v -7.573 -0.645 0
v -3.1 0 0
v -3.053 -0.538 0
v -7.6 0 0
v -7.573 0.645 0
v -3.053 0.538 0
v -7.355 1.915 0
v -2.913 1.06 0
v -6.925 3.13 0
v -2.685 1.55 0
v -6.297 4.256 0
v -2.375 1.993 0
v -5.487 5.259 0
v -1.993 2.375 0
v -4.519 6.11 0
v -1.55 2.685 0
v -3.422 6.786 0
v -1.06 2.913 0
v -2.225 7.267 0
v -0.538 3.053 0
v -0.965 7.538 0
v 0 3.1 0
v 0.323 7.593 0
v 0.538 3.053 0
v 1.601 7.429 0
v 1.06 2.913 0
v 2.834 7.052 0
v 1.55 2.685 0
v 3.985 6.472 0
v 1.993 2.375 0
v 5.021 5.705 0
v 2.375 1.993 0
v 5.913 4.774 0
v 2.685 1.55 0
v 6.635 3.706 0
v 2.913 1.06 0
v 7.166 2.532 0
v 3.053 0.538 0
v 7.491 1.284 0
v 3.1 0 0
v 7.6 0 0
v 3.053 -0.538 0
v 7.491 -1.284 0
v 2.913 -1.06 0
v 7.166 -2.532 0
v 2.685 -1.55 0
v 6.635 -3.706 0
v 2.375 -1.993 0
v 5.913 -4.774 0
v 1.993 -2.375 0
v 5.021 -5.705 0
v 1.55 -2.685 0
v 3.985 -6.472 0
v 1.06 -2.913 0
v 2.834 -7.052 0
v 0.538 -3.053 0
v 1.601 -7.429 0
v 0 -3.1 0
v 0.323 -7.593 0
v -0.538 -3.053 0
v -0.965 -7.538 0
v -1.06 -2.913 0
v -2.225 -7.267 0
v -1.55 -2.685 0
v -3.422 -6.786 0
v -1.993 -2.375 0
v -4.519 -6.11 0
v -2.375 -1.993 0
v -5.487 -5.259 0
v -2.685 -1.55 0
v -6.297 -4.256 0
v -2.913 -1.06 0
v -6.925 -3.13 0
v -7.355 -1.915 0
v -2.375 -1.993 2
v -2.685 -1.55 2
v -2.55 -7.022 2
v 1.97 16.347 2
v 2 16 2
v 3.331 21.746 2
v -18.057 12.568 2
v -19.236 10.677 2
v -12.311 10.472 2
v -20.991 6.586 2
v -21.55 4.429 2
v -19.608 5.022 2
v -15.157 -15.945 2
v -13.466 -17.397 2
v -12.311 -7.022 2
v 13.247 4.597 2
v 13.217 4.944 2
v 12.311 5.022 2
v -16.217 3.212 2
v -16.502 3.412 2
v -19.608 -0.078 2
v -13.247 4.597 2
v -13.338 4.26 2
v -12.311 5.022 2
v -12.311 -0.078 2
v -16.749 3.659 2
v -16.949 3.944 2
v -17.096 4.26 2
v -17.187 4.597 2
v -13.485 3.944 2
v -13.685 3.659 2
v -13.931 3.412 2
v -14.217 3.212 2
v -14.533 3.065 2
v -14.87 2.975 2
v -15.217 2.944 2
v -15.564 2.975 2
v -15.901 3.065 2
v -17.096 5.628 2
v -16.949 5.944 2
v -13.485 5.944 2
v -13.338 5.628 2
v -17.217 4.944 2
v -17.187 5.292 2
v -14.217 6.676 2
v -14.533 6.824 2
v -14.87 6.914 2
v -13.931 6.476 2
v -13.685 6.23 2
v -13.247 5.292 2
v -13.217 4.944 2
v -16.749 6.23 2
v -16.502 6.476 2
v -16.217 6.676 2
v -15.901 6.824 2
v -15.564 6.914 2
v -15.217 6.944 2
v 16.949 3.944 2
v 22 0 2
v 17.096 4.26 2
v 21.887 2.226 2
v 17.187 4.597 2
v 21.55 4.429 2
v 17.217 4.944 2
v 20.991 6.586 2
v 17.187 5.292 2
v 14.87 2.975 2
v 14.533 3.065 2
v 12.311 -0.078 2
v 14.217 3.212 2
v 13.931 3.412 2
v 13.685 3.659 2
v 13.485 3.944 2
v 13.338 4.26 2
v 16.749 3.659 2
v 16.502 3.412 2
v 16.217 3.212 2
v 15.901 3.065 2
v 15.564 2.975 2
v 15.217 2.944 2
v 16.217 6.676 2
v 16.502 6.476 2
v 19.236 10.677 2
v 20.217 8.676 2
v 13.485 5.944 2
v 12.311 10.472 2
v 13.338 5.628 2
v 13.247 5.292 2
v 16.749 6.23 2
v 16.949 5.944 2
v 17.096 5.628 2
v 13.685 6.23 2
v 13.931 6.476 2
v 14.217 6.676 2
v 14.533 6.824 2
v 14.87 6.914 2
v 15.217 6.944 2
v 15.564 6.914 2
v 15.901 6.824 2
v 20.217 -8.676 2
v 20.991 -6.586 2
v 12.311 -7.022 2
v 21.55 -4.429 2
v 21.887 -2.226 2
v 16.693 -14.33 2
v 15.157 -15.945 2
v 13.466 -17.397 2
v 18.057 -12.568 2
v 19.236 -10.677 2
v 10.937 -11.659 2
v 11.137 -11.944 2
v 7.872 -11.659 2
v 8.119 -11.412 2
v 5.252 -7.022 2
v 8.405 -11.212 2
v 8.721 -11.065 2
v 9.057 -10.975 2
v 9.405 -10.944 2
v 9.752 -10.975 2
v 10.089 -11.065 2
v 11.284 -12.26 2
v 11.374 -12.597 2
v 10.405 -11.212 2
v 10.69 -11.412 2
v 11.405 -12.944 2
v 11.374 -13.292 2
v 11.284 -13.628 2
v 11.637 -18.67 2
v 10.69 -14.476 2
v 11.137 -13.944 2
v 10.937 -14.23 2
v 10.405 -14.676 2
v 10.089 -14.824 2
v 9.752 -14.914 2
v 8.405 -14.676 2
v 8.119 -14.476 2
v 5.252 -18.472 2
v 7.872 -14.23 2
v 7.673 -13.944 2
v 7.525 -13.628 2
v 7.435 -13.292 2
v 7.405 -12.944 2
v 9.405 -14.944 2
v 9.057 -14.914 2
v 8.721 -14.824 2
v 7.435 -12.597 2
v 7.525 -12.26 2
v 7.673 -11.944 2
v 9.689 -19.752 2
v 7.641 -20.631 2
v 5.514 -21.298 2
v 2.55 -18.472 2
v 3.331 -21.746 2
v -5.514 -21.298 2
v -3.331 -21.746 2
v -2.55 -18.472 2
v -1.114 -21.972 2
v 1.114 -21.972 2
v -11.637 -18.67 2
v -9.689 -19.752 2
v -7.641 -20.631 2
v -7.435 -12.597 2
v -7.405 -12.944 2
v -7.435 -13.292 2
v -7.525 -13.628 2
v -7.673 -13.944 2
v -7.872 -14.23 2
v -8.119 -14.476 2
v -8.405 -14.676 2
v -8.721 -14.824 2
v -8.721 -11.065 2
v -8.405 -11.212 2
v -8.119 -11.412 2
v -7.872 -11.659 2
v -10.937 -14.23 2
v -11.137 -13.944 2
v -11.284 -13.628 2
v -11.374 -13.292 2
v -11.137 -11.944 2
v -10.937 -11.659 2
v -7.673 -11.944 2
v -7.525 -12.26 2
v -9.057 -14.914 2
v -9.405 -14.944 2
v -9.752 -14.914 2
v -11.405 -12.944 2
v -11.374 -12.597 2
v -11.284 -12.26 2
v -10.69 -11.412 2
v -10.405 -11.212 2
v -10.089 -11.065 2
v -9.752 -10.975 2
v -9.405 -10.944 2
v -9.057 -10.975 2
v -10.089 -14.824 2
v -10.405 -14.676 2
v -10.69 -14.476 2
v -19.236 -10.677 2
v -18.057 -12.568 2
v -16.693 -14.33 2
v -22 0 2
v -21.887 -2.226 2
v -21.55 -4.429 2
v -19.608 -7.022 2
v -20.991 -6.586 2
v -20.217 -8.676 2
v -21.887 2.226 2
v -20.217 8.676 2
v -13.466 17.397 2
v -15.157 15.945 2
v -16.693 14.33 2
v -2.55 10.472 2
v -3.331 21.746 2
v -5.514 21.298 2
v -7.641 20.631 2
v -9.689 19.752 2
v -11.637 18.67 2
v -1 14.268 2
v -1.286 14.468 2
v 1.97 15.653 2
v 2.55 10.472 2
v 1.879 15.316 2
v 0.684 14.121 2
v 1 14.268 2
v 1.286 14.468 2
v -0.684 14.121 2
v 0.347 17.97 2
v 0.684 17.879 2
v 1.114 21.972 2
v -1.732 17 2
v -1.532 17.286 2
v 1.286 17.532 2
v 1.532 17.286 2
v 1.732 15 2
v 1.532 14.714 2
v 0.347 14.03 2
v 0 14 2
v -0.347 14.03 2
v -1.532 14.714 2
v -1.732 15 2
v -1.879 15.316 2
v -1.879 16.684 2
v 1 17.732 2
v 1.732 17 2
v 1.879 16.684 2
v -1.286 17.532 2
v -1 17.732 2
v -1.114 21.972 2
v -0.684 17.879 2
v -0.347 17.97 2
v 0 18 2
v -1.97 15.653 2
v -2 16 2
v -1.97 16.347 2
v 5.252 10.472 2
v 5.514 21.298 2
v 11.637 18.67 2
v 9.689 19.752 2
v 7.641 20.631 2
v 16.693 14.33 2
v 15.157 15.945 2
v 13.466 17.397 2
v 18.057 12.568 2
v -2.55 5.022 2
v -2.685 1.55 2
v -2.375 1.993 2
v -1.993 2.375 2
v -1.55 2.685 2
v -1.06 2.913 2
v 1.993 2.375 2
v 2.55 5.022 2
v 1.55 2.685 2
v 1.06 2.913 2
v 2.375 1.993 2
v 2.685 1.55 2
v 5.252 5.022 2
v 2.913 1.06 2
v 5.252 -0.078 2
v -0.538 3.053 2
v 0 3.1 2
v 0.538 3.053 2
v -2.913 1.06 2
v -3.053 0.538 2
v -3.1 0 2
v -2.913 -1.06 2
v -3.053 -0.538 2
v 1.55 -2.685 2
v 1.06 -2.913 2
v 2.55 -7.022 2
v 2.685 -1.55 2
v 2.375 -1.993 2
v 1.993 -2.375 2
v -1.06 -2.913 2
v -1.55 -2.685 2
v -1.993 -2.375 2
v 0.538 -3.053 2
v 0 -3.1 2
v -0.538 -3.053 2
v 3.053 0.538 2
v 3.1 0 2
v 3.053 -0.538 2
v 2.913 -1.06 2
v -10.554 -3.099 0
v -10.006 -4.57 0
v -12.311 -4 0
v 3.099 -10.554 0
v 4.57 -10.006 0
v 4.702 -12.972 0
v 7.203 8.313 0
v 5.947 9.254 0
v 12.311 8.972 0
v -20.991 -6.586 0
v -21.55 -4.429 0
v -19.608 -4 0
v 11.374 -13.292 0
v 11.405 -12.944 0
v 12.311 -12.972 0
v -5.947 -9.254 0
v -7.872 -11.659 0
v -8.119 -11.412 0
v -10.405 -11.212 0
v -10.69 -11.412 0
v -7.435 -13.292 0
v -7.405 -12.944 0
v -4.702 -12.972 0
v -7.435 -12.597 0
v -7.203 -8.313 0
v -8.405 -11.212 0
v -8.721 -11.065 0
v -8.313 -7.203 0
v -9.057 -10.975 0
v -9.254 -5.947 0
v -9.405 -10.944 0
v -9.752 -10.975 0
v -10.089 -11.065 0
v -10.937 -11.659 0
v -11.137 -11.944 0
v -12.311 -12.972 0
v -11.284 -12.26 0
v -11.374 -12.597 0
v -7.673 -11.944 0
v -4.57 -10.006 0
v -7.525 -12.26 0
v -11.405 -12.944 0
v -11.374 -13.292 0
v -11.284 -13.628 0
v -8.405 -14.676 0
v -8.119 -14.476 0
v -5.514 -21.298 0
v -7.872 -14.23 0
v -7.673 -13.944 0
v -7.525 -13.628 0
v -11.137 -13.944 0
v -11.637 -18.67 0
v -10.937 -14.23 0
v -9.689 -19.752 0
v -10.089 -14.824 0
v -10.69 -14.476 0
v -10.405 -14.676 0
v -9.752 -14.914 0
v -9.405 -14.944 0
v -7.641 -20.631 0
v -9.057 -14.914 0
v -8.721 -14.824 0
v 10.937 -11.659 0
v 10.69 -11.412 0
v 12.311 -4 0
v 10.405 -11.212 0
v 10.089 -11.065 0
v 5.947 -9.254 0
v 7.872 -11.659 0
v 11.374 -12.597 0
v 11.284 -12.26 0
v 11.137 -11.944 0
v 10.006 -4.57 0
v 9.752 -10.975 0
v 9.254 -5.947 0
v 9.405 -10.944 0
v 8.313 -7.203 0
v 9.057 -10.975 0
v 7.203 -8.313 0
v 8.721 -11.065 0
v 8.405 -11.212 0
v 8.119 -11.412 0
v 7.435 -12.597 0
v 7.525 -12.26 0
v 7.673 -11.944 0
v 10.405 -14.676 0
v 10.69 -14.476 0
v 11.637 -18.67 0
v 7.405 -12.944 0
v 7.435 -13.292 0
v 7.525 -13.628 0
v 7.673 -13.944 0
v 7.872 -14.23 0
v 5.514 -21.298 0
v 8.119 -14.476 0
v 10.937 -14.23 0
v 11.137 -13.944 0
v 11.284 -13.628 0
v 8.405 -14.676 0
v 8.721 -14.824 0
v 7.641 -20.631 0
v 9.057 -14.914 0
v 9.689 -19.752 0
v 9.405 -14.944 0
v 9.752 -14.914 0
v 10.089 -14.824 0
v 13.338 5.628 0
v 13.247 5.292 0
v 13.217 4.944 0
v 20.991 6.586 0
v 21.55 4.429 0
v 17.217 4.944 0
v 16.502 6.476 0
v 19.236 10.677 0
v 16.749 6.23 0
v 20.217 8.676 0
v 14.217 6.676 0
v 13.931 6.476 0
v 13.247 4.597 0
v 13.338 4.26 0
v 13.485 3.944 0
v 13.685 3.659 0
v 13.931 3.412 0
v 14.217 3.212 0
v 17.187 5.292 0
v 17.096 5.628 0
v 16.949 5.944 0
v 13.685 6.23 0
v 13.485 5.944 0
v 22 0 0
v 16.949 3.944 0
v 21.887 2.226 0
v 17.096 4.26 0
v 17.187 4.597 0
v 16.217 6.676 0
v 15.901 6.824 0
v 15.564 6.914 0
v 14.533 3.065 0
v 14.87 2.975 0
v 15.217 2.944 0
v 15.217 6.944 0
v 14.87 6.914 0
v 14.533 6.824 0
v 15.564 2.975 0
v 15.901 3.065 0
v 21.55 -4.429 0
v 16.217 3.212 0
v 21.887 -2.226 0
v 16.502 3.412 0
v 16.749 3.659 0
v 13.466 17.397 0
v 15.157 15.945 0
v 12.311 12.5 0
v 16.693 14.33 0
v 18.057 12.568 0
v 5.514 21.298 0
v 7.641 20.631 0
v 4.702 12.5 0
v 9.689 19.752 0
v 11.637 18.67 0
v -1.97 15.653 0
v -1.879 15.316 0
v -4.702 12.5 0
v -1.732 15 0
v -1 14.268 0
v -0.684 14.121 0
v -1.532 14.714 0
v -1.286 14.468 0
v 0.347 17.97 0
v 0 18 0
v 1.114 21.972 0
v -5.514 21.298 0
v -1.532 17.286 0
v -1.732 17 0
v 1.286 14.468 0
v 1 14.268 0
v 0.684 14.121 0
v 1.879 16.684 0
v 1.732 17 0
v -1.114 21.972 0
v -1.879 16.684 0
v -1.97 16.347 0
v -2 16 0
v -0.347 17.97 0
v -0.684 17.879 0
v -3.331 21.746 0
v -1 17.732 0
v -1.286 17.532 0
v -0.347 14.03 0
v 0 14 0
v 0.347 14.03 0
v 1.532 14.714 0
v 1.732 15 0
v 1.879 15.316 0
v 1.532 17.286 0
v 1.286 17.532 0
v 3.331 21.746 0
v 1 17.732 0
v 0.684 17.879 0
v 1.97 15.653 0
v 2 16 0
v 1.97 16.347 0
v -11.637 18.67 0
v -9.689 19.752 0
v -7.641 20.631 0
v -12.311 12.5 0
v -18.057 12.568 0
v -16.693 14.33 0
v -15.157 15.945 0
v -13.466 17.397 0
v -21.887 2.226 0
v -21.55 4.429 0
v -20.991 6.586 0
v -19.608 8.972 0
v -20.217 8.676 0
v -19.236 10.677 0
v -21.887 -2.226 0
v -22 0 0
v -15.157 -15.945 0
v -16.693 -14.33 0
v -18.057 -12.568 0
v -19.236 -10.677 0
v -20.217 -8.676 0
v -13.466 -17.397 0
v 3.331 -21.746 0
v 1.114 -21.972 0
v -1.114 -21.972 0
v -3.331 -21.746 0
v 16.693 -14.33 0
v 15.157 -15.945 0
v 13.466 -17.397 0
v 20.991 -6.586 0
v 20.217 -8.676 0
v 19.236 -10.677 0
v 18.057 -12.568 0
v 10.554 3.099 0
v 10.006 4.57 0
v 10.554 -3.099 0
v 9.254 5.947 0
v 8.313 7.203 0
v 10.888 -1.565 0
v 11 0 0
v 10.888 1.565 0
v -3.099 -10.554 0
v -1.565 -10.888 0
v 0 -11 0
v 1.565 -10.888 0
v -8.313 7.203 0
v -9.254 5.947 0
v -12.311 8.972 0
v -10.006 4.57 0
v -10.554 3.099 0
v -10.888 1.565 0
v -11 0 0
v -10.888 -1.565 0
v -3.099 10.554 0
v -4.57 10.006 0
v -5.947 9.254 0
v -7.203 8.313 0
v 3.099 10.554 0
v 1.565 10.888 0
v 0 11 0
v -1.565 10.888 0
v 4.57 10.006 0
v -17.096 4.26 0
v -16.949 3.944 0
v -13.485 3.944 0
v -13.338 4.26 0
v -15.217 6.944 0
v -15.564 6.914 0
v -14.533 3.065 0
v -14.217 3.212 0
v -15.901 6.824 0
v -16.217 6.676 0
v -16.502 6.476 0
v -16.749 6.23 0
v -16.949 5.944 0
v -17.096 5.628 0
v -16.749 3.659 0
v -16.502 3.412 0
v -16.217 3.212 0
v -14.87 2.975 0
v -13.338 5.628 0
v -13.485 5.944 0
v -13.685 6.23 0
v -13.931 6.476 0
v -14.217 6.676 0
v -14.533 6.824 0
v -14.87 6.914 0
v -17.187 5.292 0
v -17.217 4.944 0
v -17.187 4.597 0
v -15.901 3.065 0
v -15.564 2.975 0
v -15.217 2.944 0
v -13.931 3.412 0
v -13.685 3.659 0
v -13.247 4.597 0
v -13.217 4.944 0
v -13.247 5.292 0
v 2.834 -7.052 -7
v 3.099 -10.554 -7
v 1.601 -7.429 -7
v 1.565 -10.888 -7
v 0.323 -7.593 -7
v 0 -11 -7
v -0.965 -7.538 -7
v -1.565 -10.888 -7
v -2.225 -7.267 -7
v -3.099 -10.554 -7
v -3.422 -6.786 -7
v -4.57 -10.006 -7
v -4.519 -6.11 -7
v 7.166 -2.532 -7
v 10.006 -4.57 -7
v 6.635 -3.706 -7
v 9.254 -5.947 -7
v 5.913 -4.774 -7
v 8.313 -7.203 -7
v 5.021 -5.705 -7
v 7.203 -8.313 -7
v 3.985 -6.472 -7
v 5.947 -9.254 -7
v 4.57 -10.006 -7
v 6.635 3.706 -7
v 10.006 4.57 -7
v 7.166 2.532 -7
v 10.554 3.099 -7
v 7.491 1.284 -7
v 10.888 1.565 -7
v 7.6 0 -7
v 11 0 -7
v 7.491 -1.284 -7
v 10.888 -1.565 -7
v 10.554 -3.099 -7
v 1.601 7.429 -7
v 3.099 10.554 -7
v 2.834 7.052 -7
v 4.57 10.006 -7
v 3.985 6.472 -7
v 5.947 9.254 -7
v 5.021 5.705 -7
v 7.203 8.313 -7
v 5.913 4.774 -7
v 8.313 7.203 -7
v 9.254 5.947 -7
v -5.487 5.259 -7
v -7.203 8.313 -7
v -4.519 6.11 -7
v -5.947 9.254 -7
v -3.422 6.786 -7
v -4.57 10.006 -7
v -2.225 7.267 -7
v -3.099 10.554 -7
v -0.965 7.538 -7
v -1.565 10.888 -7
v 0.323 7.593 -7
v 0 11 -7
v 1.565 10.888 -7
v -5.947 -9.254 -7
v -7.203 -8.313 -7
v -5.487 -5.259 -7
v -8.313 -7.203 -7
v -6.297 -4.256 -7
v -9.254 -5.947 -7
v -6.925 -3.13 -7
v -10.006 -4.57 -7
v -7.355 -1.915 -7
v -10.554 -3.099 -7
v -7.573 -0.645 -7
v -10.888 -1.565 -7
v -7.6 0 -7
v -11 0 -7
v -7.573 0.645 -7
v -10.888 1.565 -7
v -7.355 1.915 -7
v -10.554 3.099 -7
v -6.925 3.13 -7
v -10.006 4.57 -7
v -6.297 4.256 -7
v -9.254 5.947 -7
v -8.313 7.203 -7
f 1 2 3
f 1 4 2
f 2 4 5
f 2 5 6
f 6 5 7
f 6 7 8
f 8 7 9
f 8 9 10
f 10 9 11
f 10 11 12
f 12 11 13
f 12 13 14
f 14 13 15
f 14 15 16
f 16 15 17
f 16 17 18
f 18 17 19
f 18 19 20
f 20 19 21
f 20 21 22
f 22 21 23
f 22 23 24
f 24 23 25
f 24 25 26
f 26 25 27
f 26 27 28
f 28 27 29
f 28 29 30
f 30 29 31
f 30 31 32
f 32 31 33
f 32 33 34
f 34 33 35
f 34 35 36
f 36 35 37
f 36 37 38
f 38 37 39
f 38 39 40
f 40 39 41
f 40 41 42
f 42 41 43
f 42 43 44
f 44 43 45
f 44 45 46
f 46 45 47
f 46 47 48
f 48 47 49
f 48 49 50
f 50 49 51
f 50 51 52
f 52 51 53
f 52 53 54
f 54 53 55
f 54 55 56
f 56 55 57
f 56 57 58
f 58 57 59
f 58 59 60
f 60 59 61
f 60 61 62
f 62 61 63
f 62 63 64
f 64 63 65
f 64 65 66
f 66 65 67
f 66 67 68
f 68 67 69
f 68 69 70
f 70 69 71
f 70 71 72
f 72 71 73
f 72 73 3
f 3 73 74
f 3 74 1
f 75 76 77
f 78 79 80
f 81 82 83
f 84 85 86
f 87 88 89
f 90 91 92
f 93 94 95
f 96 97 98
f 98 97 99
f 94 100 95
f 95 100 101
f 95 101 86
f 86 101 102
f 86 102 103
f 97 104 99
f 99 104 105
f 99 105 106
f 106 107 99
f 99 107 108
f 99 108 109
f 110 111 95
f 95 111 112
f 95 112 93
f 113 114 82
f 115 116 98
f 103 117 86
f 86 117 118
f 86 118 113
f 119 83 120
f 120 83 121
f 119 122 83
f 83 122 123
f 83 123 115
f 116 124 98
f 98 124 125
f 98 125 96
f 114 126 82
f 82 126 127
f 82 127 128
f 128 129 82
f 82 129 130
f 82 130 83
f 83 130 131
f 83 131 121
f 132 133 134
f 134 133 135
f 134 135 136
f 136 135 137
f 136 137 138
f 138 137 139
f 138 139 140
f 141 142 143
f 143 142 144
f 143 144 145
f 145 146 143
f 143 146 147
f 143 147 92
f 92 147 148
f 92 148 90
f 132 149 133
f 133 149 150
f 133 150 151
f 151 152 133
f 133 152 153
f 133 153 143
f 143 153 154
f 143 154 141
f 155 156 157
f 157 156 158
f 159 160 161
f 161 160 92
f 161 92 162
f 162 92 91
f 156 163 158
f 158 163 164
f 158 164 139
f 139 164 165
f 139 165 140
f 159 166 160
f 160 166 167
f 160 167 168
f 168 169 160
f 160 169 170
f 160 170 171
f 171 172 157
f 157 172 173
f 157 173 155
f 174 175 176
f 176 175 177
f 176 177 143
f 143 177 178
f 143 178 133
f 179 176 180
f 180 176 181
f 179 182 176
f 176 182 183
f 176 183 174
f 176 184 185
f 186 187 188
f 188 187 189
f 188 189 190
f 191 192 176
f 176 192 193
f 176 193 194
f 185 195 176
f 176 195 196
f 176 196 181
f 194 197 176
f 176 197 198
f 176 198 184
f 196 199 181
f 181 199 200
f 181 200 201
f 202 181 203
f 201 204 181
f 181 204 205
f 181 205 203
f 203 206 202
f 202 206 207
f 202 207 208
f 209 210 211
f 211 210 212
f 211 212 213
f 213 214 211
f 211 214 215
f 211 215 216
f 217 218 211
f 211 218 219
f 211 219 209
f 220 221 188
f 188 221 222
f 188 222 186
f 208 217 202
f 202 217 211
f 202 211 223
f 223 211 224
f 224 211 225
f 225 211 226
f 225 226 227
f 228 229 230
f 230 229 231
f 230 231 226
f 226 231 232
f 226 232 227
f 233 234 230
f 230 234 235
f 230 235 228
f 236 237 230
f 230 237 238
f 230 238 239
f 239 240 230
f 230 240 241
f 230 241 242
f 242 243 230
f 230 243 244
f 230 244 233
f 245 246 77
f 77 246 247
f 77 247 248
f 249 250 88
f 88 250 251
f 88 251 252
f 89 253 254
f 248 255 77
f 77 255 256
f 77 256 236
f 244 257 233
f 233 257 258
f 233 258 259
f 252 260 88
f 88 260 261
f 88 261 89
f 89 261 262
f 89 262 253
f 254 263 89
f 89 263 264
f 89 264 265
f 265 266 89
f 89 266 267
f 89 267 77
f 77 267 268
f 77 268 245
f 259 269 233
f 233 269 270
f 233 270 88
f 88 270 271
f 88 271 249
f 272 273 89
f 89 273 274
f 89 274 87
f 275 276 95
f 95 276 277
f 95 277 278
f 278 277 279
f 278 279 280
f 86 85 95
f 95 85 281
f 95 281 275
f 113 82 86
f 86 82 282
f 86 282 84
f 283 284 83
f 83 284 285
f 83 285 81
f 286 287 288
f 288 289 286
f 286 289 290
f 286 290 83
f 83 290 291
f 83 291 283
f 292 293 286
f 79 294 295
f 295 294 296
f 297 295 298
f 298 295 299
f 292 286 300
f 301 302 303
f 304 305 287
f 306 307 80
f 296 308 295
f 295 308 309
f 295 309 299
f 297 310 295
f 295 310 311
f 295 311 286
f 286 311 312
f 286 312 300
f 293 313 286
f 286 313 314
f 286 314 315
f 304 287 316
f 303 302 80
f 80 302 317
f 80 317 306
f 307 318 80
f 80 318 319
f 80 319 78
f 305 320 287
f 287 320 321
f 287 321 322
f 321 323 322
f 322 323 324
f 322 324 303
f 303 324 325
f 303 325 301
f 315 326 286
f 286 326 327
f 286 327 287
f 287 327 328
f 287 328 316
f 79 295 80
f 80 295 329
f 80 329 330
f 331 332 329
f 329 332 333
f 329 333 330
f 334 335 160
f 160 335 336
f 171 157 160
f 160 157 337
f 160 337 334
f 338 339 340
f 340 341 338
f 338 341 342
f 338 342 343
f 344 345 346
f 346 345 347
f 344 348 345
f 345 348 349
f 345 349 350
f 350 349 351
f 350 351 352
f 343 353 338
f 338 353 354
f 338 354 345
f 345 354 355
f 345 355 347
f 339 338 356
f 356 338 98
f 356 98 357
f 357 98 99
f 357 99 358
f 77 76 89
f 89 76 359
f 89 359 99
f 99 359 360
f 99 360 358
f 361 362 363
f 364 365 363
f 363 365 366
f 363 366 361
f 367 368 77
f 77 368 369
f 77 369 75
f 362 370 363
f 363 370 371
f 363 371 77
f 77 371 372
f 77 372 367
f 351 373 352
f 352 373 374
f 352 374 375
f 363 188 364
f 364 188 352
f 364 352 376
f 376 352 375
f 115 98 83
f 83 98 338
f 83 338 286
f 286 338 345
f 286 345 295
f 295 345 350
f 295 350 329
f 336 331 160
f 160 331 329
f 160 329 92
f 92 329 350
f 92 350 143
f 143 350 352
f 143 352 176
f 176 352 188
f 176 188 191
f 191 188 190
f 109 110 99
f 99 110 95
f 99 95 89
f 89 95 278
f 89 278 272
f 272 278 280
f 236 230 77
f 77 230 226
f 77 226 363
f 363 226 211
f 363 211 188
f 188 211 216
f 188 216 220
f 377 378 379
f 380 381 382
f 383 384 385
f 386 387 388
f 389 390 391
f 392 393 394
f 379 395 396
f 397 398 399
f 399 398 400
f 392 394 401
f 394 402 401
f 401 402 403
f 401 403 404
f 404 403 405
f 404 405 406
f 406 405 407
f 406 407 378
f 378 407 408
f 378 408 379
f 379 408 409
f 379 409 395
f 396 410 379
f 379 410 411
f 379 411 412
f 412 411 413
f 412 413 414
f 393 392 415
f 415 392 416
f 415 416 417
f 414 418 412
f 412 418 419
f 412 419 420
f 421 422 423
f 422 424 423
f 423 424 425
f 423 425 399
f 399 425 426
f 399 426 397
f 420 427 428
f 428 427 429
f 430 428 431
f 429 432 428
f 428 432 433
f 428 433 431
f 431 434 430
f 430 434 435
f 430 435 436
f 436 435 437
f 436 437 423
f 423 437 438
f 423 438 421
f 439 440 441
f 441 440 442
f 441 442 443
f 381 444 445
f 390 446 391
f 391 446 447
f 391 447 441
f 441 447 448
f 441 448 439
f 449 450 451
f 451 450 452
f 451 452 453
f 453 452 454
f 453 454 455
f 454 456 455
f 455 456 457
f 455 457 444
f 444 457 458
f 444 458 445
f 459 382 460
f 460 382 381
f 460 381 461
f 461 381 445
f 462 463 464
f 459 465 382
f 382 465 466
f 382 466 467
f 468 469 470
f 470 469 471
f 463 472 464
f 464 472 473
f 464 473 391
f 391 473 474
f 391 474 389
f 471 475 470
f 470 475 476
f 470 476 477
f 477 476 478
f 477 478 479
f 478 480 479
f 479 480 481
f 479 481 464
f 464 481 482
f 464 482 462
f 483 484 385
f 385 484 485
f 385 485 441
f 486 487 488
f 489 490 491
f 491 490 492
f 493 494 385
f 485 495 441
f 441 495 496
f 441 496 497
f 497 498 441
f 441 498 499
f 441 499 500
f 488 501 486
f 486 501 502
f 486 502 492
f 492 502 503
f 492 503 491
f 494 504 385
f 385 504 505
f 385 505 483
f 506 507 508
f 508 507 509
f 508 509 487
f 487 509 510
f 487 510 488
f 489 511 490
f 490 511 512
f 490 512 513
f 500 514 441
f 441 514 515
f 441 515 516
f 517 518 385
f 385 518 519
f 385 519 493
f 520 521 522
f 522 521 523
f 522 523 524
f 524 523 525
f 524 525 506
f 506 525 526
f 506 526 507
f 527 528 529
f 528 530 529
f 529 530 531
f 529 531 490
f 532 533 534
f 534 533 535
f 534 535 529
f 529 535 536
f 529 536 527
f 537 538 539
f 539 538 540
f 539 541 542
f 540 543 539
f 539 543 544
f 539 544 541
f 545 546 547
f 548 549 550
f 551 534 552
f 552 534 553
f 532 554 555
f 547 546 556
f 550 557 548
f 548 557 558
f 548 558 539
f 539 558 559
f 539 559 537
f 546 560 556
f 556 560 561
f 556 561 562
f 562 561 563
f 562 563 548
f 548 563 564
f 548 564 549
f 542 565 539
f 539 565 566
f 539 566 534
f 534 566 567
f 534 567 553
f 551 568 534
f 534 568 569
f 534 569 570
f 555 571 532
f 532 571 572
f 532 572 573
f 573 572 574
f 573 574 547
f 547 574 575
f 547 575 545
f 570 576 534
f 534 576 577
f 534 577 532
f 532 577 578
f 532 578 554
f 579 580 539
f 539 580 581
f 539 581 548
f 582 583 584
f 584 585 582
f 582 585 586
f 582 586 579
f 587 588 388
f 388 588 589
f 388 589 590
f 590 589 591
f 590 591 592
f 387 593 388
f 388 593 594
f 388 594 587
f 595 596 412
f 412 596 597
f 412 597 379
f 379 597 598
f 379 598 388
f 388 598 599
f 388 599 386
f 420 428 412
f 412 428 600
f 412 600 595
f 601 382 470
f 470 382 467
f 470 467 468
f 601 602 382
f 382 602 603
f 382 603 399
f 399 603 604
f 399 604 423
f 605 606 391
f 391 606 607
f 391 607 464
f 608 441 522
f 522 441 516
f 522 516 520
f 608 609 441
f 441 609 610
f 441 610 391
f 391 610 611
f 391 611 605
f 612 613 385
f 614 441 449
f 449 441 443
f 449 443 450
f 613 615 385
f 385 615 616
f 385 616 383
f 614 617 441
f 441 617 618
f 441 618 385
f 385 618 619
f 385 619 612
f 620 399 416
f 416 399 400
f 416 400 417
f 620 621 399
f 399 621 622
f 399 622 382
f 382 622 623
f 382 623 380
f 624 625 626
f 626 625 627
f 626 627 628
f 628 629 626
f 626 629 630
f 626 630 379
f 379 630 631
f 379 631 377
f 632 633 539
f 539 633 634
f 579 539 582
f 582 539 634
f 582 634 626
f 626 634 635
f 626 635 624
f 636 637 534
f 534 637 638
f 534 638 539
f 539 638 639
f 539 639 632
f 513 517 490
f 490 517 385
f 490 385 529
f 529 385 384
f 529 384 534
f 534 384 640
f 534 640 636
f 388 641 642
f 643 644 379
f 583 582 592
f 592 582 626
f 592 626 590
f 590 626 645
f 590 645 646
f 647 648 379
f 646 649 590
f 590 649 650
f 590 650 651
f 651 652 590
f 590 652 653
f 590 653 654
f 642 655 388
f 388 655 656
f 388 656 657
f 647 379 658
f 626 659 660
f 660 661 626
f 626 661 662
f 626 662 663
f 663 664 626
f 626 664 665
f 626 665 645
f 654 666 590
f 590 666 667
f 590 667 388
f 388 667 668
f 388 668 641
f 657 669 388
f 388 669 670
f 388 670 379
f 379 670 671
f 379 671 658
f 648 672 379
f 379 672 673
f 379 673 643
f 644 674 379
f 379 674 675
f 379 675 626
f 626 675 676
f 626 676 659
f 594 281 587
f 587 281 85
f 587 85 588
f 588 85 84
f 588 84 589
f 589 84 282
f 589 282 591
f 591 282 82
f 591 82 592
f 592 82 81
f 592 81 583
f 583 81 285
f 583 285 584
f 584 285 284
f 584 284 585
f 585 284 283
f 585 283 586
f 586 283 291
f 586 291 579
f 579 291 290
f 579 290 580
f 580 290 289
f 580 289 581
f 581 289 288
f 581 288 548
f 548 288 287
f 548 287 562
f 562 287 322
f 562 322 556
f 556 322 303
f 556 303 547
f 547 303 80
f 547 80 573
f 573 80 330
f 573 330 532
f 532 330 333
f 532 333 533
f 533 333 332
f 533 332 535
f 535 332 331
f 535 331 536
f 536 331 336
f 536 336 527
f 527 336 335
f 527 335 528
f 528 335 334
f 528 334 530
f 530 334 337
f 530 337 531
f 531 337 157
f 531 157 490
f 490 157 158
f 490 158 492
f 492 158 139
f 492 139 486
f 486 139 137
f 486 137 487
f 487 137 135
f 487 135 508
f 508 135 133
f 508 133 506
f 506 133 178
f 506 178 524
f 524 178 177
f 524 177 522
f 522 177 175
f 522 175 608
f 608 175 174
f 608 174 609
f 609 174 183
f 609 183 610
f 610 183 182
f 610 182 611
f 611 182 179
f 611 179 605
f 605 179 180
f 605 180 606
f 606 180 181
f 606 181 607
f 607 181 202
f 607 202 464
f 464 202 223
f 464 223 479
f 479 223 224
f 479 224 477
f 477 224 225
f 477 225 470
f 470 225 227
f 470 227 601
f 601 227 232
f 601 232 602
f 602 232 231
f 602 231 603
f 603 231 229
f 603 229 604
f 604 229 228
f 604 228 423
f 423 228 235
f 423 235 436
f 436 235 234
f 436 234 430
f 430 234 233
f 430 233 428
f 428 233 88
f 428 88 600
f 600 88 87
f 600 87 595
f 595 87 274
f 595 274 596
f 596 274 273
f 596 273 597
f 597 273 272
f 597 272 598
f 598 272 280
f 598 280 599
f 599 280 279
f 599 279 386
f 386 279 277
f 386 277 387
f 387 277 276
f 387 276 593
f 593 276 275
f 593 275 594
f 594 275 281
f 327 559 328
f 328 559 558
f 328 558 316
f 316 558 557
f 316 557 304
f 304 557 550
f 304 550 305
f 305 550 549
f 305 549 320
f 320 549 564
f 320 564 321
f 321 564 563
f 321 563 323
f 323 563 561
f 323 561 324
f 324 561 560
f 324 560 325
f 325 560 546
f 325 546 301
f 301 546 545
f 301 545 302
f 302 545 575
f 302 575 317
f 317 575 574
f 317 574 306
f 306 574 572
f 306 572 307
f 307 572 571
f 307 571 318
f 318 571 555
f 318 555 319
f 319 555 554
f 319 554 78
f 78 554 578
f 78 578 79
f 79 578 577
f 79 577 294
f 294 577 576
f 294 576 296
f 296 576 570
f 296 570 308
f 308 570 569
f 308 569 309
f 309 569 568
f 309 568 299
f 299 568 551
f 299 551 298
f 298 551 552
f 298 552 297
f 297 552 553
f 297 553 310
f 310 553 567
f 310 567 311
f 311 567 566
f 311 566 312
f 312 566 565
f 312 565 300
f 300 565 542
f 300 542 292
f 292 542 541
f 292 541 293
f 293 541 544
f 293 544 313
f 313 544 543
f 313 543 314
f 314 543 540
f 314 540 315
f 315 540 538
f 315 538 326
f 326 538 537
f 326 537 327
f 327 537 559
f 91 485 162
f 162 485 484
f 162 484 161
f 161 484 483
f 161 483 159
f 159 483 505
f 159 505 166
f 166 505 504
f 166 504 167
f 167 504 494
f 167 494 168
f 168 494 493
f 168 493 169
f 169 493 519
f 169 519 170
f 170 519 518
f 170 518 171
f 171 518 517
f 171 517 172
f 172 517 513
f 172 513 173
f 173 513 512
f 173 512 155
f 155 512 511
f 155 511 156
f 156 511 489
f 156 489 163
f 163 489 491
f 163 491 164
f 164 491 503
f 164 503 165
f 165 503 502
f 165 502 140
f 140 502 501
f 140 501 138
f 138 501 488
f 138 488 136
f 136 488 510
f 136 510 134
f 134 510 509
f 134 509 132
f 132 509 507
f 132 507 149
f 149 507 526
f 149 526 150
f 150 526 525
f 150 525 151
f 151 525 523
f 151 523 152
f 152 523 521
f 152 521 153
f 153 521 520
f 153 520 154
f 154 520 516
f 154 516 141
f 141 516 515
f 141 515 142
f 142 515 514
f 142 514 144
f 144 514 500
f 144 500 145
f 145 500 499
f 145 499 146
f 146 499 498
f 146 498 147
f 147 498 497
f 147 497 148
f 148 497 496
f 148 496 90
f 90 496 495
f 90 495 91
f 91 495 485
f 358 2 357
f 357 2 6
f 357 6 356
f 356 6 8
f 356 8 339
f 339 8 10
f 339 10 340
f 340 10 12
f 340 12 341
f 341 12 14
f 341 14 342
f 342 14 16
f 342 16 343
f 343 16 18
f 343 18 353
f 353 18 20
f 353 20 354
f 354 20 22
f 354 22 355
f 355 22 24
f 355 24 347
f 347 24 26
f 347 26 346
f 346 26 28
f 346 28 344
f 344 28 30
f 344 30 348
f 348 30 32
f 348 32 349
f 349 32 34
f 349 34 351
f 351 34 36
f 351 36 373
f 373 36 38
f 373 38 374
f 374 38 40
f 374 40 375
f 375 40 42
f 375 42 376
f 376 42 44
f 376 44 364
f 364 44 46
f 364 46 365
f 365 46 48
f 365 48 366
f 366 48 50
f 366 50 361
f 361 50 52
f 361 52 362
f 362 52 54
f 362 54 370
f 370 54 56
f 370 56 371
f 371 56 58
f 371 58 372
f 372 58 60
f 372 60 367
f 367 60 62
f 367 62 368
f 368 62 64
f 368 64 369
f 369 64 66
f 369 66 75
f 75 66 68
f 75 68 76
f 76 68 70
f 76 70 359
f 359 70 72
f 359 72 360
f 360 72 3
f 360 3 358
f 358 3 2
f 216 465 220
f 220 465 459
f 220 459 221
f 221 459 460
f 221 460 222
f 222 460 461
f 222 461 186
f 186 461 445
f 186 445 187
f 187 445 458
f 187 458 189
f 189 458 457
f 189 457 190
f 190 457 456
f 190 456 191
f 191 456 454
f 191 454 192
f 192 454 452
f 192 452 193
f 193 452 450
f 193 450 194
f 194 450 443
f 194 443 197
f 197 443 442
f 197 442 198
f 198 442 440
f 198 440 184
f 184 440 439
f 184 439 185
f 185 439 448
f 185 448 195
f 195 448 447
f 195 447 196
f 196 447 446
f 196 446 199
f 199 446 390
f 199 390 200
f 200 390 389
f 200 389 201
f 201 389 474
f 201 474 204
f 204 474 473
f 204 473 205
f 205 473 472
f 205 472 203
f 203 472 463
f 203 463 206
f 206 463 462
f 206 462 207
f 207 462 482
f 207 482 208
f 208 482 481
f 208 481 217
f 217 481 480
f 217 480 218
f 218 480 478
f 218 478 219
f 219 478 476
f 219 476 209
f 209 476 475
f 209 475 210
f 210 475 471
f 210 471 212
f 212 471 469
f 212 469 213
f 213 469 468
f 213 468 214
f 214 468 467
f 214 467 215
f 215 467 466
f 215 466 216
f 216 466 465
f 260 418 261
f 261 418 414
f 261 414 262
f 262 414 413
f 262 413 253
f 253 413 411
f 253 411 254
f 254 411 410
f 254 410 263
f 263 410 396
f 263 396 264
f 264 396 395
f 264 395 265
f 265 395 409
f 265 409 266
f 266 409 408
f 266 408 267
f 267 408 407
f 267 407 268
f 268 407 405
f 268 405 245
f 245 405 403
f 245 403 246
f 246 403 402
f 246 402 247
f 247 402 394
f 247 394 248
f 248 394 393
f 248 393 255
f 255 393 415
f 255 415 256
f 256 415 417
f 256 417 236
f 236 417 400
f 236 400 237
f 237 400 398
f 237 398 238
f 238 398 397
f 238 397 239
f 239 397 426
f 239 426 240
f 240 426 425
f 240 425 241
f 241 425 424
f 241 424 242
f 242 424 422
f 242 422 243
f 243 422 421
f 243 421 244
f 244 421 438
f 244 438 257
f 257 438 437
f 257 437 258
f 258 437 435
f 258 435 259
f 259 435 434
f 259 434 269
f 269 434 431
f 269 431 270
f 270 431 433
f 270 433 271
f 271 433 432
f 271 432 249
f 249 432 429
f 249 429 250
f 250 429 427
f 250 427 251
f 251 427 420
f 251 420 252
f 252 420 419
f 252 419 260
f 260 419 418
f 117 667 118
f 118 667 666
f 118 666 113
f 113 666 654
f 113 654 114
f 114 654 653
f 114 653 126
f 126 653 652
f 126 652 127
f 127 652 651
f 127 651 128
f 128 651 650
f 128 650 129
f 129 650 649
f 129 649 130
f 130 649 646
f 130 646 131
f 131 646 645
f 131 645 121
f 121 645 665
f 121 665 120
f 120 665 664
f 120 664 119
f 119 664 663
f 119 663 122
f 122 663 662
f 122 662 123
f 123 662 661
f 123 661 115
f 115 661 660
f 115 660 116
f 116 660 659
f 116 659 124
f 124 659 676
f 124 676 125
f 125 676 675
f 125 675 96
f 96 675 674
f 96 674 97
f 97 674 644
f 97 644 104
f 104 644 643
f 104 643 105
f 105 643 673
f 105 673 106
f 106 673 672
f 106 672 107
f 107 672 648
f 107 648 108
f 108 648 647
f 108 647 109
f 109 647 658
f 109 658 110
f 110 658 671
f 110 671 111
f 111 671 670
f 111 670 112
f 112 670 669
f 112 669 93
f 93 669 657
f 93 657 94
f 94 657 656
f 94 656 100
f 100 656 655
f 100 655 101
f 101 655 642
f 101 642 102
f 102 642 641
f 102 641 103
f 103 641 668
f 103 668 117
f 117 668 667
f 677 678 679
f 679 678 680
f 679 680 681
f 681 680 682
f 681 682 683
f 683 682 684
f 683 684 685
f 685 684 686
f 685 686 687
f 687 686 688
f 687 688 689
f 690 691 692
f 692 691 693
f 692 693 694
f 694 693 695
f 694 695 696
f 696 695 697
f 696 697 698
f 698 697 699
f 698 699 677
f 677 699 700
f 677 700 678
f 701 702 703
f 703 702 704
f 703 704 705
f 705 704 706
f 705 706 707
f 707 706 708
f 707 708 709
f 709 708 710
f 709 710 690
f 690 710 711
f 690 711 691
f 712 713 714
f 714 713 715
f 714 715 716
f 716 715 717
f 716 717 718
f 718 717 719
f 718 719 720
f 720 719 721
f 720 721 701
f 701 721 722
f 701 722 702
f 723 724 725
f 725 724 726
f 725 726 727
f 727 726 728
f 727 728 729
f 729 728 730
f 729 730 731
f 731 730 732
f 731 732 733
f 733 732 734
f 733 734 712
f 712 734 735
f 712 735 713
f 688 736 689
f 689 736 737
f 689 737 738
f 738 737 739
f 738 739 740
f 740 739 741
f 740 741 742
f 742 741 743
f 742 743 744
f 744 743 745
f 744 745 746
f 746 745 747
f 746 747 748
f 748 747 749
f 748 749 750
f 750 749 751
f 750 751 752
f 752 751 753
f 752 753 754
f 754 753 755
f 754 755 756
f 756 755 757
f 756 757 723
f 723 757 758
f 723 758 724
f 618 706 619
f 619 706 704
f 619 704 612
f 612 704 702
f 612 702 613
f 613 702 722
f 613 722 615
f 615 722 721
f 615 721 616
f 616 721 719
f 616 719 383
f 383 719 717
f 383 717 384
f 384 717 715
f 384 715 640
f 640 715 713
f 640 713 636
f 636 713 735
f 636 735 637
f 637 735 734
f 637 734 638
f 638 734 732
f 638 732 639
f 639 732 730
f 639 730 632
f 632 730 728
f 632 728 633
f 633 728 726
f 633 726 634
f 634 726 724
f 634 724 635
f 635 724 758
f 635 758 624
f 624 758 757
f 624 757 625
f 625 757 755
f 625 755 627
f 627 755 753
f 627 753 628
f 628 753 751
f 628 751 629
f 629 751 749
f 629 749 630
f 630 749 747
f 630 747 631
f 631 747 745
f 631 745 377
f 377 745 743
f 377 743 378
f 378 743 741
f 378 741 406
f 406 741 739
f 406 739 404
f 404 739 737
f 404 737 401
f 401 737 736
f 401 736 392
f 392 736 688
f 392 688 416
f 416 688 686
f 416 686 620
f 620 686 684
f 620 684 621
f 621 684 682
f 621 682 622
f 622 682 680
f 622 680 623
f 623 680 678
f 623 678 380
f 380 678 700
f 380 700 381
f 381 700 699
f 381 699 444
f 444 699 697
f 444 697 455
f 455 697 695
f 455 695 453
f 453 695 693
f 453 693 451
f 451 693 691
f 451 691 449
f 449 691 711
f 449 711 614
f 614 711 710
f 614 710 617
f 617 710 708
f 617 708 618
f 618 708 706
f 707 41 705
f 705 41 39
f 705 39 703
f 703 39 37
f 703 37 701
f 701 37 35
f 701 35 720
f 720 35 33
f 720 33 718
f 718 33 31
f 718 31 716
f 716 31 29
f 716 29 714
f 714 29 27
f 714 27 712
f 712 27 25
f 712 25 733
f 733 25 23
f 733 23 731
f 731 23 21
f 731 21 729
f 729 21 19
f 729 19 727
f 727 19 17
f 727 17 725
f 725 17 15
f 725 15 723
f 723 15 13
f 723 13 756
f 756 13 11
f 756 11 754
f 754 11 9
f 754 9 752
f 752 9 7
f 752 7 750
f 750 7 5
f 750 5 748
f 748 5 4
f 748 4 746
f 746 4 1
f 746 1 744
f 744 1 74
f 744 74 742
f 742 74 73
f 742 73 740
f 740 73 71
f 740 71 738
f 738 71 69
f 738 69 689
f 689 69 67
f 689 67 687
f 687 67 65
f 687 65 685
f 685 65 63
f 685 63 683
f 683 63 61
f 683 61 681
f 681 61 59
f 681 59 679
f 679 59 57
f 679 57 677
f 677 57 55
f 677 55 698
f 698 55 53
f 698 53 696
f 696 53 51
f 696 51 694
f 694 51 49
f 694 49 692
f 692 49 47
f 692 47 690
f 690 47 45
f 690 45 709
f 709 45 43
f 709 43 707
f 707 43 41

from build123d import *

# Parameters (mm, degrees)
SKETCH_1_R      = 22
SKETCH_1_R_2    = 3.1
SKETCH_1_R_3    = 2
EXTRUDE_1_DEPTH = 2
SKETCH_3_R      = 11
SKETCH_3_R_2    = 7.6
EXTRUDE_2_DEPTH = 7


with BuildPart() as part:
    # 草图1 → 凸台-拉伸1 (new body)
    with BuildSketch(Plane.XY):
        Circle(SKETCH_1_R)
        Circle(SKETCH_1_R_2, mode=Mode.SUBTRACT)
        with Locations((0, 16)):
            Circle(SKETCH_1_R_3, mode=Mode.SUBTRACT)
        with Locations((15.216904261, 4.94427191)):
            Circle(SKETCH_1_R_3, mode=Mode.SUBTRACT)
        with Locations((9.404564037, -12.94427191)):
            Circle(SKETCH_1_R_3, mode=Mode.SUBTRACT)
        with Locations((-9.404564037, -12.94427191)):
            Circle(SKETCH_1_R_3, mode=Mode.SUBTRACT)
        with Locations((-15.216904261, 4.94427191)):
            Circle(SKETCH_1_R_3, mode=Mode.SUBTRACT)
    extrude(amount=EXTRUDE_1_DEPTH)

    # 草图3 → 凸台-拉伸2 (add)
    with BuildSketch(Plane(origin=(0, 0, 0), x_dir=(-1, 0, 0), z_dir=(0, 0, -1))):
        with Locations(Location((0, 0, 0), (0, 0, 180))):
            Circle(SKETCH_3_R)
        Circle(SKETCH_3_R_2, mode=Mode.SUBTRACT)
    extrude(amount=EXTRUDE_2_DEPTH)


solid = part.part
